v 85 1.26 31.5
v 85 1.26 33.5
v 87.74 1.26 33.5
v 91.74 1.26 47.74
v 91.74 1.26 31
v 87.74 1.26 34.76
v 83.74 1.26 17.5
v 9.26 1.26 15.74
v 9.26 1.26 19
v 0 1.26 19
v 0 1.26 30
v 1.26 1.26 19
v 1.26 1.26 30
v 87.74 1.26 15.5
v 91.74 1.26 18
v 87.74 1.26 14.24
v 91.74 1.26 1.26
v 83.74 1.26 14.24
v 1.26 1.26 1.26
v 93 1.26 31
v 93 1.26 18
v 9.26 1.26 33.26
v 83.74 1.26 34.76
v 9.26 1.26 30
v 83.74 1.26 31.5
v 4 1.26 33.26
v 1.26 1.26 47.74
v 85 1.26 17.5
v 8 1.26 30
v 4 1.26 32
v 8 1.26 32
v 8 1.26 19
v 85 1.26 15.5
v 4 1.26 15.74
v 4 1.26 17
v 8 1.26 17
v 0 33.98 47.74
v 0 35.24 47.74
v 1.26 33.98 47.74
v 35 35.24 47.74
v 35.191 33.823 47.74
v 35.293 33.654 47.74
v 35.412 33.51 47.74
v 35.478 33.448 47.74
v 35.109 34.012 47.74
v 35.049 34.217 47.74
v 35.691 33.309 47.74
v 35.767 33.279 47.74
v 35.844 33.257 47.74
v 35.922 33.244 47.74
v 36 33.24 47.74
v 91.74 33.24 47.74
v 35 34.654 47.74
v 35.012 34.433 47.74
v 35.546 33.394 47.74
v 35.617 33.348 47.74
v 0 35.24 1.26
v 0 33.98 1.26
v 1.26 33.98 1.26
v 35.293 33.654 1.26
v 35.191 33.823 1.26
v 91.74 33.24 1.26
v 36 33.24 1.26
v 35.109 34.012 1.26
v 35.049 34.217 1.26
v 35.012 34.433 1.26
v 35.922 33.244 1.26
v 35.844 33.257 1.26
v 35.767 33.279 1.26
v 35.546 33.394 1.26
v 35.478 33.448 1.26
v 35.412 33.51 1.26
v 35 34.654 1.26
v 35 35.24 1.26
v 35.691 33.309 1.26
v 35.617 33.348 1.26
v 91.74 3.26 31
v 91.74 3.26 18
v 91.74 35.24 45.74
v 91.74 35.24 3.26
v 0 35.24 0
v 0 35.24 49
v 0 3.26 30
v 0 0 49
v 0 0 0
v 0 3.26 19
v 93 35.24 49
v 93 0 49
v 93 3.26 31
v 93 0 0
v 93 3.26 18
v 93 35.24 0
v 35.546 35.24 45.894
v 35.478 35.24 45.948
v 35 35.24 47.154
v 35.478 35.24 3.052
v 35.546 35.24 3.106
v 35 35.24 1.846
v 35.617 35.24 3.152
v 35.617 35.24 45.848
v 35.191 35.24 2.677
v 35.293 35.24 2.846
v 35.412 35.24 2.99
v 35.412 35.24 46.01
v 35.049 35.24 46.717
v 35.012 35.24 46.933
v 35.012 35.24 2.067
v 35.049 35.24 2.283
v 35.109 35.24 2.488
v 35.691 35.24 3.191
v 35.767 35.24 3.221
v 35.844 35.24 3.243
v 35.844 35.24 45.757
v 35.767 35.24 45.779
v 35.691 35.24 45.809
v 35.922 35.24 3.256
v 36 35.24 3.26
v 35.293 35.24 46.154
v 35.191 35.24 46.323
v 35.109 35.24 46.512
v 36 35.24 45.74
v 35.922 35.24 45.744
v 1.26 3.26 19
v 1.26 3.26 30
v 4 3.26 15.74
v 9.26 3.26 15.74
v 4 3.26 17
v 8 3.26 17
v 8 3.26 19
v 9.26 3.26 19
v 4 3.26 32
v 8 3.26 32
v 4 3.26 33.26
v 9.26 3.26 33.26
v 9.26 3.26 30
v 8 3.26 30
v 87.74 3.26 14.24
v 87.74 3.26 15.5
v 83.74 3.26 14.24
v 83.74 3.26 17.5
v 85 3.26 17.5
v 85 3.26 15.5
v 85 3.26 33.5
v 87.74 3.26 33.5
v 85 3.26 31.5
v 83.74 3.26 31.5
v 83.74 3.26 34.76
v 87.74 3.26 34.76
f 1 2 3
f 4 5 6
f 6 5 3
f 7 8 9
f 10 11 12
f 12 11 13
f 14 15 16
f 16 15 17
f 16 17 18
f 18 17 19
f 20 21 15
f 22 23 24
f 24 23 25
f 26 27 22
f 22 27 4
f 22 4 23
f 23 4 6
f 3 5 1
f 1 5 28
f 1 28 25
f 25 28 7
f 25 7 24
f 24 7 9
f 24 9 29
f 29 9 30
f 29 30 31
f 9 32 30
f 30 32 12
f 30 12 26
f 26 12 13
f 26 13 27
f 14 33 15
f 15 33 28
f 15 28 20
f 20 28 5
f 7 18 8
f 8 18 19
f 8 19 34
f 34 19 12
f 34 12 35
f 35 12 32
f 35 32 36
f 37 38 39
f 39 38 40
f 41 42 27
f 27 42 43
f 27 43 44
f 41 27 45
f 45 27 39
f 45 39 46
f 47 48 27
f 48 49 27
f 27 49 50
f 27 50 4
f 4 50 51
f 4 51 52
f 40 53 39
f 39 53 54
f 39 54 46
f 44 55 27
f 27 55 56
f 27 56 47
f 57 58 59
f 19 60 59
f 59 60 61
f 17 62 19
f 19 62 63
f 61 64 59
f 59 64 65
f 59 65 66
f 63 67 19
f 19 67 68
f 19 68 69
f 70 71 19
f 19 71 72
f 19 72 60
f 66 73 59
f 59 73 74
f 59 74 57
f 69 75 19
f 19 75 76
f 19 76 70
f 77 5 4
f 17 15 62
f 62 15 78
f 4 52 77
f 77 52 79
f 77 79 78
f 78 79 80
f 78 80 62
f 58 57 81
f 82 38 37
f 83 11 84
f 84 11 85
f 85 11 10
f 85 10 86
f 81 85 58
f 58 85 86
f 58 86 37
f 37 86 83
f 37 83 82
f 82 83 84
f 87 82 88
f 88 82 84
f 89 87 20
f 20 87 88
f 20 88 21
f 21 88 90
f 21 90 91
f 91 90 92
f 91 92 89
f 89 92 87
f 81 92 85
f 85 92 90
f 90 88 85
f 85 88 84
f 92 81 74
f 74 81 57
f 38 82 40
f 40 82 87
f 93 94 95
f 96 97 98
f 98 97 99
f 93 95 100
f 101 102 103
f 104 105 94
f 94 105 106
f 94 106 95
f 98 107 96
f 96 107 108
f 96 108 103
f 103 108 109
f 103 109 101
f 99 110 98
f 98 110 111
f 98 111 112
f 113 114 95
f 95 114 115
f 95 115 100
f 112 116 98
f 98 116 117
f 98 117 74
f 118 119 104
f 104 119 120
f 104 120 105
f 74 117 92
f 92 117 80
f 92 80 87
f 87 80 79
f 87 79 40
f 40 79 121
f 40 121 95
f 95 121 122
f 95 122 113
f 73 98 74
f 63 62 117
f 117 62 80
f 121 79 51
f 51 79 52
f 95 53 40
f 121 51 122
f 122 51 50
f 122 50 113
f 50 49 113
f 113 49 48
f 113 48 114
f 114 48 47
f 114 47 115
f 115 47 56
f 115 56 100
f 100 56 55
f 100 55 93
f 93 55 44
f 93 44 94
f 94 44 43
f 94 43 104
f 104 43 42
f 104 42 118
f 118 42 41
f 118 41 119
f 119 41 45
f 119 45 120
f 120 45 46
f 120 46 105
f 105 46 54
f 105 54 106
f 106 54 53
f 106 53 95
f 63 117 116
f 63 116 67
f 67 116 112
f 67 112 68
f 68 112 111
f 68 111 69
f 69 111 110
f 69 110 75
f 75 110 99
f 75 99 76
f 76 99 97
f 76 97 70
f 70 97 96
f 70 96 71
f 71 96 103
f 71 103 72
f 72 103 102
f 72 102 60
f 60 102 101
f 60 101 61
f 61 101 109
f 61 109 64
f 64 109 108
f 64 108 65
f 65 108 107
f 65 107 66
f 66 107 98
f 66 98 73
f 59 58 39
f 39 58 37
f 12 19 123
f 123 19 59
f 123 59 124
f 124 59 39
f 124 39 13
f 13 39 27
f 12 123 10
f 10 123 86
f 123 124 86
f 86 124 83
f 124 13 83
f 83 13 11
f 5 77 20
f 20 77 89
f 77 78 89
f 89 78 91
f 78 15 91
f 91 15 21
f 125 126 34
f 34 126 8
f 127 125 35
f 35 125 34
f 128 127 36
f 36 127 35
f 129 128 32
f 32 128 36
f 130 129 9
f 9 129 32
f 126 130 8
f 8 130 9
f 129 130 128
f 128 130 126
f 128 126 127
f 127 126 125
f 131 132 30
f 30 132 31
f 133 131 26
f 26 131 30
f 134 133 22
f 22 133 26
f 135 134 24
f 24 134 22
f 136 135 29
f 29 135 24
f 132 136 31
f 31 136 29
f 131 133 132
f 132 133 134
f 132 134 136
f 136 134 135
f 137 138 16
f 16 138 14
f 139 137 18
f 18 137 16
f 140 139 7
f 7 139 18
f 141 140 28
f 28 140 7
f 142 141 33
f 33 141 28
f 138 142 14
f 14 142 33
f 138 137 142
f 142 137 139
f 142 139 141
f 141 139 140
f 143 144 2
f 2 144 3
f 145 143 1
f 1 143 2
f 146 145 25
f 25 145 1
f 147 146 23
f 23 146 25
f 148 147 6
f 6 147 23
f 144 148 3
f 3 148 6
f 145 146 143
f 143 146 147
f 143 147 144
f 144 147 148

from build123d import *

# Parameters (mm, degrees)
ESBO_O1_W                = 93
ESBO_O1_H                = 49
RESSALTO_EXTRUS_O1_DEPTH = 1.26
ESBO_O2_W                = 93
ESBO_O2_H                = 1.26
RESSALTO_EXTRUS_O2_DEPTH = 35.24
ESBO_O3_W                = 1.26
ESBO_O3_H                = 49
RESSALTO_EXTRUS_O4_DEPTH = 35.24
RESSALTO_EXTRUS_O5_START = 35
RESSALTO_EXTRUS_O5_DEPTH = 57
FILETE1_R                = 1
FILETE2_R                = 1
ESBO_O6_W                = 1.26
ESBO_O6_H                = 49
RESSALTO_EXTRUS_O6_DEPTH = 33.98
ESBO_O7_W                = 11
ESBO_O7_H                = 2
CORTE_EXTRUS_O1_DEPTH    = 1.26
ESBO_O8_W                = 13
ESBO_O8_H                = 2
CORTE_EXTRUS_O2_DEPTH    = 1.26
RESSALTO_EXTRUS_O7_DEPTH = 2
RESSALTO_EXTRUS_O8_DEPTH = 2


with BuildPart() as part:
    # Esboço1 → Ressalto-extrusão1 (new body)
    with BuildSketch(Plane(origin=(0, 0, 0), x_dir=(1, 0, 0), z_dir=(0, 1, 0))):
        with Locations((46.5, -24.5)):
            Rectangle(ESBO_O1_W, ESBO_O1_H)
    extrude(amount=RESSALTO_EXTRUS_O1_DEPTH)

    # Esboço2 → Ressalto-extrusão2 (add)
    with BuildSketch(Plane(origin=(0, 0, 0), x_dir=(1, 0, 0), z_dir=(0, 1, 0))):
        with Locations((46.5, -0.63)):
            Rectangle(ESBO_O2_W, ESBO_O2_H)
        with Locations((46.5, -48.37)):
            Rectangle(ESBO_O2_W, ESBO_O2_H)
    extrude(amount=RESSALTO_EXTRUS_O2_DEPTH)

    # Esboço3 → Ressalto-extrusão4 (add)
    with BuildSketch(Plane(origin=(0, 0, 0), x_dir=(1, 0, 0), z_dir=(0, 1, 0))):
        with Locations((92.37, -24.5)):
            Rectangle(ESBO_O3_W, ESBO_O3_H)
    extrude(amount=RESSALTO_EXTRUS_O4_DEPTH)

    # Esboço5 → Ressalto-extrusão5 (add)
    with BuildSketch(Plane(origin=(0, 0, 0), x_dir=(0, 0, -1), z_dir=(1, 0, 0)).offset(RESSALTO_EXTRUS_O5_START)):
        Polygon((0, 35.24), (-3.26, 35.24), (0, 31.98), align=None)
        Polygon((-49, 35.24), (-45.74, 35.24), (-49, 31.98), align=None)
    extrude(amount=RESSALTO_EXTRUS_O5_DEPTH)

    # Filete1
    filete1_edges = [part.edges().sort_by_distance(p)[0] for p in [
        (35, 34.24, 46.74),
    ]]
    fillet(filete1_edges, radius=FILETE1_R)

    # Filete2
    filete2_edges = [part.edges().sort_by_distance(p)[0] for p in [
        (35, 34.24, 2.26),
    ]]
    fillet(filete2_edges, radius=FILETE2_R)

    # Esboço6 → Ressalto-extrusão6 (add)
    with BuildSketch(Plane(origin=(0, 0, 0), x_dir=(1, 0, 0), z_dir=(0, 1, 0))):
        with Locations((0.63, -24.5)):
            Rectangle(ESBO_O6_W, ESBO_O6_H)
    extrude(amount=RESSALTO_EXTRUS_O6_DEPTH)

    # Esboço7 → Corte-extrusão1 (cut)
    with BuildSketch(Plane.ZY):
        with Locations((24.5, 2.26)):
            Rectangle(ESBO_O7_W, ESBO_O7_H)
    extrude(amount=-CORTE_EXTRUS_O1_DEPTH, mode=Mode.SUBTRACT)

    # Esboço8 → Corte-extrusão2 (cut)
    with BuildSketch(Plane(origin=(93, 0, 0), x_dir=(0, 0, -1), z_dir=(1, 0, 0))):
        with Locations((-24.5, 2.26)):
            Rectangle(ESBO_O8_W, ESBO_O8_H)
    extrude(amount=-CORTE_EXTRUS_O2_DEPTH, mode=Mode.SUBTRACT)

    # Esboço10 → Ressalto-extrusão7 (add)
    with BuildSketch(Plane(origin=(0, 1.26, 0), x_dir=(1, 0, 0), z_dir=(0, 1, 0))):
        Polygon((4, -15.74), (4, -17), (8, -17), (8, -19), (9.26, -19), (9.26, -15.74), align=None)
        Polygon((4, -32), (4, -33.26), (9.26, -33.26), (9.26, -30), (8, -30), (8, -32), align=None)
    extrude(amount=RESSALTO_EXTRUS_O7_DEPTH)

    # Esboço11 → Ressalto-extrusão8 (add)
    with BuildSketch(Plane(origin=(0, 1.26, 0), x_dir=(1, 0, 0), z_dir=(0, 1, 0))):
        Polygon((87.74, -14.24), (83.74, -14.24), (83.74, -17.5), (85, -17.5), (85, -15.5), (87.74, -15.5), align=None)
        Polygon((87.74, -33.5), (87.74, -34.76), (83.74, -34.76), (83.74, -31.5), (85, -31.5), (85, -33.5), align=None)
    extrude(amount=RESSALTO_EXTRUS_O8_DEPTH)


solid = part.part
